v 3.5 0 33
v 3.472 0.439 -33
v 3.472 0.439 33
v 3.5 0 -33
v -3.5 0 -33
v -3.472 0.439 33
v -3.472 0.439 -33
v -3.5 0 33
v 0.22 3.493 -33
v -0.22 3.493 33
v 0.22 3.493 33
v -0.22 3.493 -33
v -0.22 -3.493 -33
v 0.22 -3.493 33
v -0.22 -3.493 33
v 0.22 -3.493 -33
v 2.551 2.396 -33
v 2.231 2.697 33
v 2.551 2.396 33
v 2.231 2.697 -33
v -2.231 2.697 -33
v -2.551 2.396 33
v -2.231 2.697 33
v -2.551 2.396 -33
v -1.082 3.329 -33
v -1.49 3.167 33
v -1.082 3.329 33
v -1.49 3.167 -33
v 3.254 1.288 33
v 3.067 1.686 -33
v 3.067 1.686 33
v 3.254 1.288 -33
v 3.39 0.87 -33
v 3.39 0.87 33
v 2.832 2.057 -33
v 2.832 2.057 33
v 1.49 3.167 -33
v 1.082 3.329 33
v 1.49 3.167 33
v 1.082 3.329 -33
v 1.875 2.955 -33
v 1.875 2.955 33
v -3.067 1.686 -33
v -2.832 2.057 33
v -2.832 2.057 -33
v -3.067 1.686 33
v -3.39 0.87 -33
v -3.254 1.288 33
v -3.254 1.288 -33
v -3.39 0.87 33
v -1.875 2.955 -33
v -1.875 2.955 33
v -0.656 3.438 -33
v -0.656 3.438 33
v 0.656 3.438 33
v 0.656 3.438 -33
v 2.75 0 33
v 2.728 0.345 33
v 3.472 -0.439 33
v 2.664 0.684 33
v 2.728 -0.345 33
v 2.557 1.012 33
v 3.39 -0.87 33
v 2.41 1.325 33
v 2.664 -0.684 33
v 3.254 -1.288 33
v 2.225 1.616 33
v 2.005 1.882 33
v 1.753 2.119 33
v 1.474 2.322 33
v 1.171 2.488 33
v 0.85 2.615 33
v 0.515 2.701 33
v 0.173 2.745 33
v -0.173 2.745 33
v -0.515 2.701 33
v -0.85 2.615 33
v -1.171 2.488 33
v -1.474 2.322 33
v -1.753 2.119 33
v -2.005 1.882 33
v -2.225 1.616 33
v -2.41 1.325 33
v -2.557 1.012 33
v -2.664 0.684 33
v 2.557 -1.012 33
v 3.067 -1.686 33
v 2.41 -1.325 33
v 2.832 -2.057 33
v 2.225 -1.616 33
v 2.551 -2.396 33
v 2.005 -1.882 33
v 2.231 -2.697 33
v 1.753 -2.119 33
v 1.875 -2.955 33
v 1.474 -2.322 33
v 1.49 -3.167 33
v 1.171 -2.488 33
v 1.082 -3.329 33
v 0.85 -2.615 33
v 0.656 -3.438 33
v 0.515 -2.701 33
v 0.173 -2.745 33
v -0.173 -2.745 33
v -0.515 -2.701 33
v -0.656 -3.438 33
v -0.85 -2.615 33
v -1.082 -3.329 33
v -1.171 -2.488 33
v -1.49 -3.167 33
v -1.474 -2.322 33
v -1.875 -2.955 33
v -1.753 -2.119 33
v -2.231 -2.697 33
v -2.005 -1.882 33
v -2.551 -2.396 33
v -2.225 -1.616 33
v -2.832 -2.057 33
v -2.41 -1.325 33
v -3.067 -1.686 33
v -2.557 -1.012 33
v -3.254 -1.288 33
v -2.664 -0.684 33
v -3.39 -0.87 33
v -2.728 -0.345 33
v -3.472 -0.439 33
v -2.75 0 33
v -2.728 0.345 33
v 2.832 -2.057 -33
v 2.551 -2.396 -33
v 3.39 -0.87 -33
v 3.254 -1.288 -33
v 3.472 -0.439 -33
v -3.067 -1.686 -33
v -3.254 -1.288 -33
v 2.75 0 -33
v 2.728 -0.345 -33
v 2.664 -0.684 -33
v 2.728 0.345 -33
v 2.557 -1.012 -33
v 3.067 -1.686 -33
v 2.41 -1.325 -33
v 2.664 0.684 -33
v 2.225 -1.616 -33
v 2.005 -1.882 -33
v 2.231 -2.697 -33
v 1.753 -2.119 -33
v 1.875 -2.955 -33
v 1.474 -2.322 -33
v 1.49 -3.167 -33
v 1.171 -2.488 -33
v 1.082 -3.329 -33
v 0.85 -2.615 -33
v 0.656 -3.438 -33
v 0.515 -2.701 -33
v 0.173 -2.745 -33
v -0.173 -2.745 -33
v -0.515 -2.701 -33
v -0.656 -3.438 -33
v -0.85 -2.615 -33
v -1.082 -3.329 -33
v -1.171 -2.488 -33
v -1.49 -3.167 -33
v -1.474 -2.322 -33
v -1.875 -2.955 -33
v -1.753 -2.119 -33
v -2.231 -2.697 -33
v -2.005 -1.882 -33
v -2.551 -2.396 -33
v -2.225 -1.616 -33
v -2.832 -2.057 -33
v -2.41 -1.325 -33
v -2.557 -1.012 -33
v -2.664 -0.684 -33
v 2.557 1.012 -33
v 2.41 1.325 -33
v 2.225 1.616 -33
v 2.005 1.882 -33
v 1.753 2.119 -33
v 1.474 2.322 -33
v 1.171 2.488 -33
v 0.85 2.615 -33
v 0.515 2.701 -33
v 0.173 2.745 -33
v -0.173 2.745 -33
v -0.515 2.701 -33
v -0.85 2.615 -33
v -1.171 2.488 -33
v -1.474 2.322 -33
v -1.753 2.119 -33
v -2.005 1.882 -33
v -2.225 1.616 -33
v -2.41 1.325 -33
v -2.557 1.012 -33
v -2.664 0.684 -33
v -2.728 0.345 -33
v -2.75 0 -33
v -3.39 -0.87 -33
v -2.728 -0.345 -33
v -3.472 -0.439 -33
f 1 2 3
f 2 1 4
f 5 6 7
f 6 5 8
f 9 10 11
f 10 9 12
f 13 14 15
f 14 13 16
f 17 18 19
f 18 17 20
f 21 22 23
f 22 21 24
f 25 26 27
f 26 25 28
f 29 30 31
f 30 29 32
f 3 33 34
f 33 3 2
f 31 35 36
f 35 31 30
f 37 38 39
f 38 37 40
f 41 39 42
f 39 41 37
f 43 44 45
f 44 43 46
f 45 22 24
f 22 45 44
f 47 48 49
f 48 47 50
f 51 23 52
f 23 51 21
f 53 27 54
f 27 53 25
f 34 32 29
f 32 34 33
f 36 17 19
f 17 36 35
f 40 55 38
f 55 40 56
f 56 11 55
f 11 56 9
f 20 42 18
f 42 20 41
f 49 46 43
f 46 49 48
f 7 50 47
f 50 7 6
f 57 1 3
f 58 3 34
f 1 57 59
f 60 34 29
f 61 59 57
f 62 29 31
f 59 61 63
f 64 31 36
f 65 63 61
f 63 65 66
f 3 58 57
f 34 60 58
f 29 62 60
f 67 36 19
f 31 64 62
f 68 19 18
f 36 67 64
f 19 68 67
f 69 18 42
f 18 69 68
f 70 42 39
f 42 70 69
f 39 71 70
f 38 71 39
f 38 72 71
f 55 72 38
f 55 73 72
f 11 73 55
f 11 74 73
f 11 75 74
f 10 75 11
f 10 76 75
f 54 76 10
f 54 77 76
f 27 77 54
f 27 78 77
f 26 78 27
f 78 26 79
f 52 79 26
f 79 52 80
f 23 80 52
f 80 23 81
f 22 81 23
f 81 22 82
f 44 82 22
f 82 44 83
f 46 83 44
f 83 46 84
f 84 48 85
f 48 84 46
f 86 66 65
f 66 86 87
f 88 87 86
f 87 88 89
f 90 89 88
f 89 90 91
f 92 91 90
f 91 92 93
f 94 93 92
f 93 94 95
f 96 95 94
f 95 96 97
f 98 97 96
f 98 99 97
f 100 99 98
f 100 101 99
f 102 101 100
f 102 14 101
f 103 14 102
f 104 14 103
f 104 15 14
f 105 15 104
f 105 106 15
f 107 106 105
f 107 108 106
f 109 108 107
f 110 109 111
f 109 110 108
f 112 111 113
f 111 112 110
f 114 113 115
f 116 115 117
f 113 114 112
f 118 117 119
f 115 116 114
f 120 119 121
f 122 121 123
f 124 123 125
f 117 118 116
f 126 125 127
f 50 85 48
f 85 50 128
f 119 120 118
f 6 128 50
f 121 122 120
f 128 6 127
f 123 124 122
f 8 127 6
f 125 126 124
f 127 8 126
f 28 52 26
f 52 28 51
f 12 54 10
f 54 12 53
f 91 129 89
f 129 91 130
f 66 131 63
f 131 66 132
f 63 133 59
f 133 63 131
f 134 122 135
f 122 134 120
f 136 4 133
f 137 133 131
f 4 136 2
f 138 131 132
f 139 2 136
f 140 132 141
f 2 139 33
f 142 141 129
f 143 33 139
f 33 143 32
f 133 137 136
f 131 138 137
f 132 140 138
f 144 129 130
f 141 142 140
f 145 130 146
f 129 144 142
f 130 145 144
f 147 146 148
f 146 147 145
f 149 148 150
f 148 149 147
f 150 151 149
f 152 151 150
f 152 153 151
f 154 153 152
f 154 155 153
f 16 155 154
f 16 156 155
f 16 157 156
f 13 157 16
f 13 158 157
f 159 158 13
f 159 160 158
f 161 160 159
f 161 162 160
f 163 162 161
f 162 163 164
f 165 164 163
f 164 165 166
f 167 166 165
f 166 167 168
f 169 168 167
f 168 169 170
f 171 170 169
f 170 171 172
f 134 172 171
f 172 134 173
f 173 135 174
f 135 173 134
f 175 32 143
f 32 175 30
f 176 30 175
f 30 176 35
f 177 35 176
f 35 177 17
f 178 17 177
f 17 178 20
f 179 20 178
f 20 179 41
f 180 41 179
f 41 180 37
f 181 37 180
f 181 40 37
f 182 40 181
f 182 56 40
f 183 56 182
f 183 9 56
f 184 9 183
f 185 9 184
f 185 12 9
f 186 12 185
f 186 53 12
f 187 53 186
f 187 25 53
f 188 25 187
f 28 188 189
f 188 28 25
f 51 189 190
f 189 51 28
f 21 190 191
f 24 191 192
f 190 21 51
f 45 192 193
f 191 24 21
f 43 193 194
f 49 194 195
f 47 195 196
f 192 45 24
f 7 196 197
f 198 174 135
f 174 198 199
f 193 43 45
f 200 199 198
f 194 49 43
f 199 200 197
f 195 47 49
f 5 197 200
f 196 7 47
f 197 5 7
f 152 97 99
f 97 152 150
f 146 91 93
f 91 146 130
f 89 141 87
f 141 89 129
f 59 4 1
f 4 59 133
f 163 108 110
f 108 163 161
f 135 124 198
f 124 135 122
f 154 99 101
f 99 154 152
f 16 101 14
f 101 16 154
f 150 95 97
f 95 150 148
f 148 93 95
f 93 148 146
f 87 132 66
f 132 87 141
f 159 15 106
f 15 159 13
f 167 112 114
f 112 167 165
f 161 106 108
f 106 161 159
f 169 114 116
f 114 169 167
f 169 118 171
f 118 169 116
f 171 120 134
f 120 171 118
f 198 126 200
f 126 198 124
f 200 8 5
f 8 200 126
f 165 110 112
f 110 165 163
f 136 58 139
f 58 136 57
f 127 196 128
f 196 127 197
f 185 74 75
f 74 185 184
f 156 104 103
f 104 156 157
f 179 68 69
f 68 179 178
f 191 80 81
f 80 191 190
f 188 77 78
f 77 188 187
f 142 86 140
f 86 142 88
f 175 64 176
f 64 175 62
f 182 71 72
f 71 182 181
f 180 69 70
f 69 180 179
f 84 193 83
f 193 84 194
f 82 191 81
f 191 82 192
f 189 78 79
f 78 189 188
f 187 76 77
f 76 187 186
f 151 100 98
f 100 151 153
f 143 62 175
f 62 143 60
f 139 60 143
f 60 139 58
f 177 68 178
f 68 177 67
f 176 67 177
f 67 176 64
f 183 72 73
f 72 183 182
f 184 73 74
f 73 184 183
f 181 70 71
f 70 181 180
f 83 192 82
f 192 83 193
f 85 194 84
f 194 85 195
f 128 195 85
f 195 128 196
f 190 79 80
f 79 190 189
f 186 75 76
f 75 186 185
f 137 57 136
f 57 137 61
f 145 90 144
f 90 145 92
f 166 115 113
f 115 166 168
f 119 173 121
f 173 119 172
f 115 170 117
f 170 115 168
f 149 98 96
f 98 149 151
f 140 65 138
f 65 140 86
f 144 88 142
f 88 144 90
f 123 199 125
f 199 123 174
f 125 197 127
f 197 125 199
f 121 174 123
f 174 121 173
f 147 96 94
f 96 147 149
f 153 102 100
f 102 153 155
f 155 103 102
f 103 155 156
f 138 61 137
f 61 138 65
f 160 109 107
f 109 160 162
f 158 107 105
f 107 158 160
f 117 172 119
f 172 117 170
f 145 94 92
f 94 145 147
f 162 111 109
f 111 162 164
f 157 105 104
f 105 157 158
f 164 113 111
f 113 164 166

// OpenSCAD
$fn = 50;


difference() {
	union() {
		translate(v = [0, 0, -33.0000000000]) {
			cylinder(h = 66, r = 3.5000000000);
		}
	}
	union() {
		translate(v = [0, 0, -100.0000000000]) {
			cylinder(h = 200, r = 2.7500000000);
		}
	}
}
